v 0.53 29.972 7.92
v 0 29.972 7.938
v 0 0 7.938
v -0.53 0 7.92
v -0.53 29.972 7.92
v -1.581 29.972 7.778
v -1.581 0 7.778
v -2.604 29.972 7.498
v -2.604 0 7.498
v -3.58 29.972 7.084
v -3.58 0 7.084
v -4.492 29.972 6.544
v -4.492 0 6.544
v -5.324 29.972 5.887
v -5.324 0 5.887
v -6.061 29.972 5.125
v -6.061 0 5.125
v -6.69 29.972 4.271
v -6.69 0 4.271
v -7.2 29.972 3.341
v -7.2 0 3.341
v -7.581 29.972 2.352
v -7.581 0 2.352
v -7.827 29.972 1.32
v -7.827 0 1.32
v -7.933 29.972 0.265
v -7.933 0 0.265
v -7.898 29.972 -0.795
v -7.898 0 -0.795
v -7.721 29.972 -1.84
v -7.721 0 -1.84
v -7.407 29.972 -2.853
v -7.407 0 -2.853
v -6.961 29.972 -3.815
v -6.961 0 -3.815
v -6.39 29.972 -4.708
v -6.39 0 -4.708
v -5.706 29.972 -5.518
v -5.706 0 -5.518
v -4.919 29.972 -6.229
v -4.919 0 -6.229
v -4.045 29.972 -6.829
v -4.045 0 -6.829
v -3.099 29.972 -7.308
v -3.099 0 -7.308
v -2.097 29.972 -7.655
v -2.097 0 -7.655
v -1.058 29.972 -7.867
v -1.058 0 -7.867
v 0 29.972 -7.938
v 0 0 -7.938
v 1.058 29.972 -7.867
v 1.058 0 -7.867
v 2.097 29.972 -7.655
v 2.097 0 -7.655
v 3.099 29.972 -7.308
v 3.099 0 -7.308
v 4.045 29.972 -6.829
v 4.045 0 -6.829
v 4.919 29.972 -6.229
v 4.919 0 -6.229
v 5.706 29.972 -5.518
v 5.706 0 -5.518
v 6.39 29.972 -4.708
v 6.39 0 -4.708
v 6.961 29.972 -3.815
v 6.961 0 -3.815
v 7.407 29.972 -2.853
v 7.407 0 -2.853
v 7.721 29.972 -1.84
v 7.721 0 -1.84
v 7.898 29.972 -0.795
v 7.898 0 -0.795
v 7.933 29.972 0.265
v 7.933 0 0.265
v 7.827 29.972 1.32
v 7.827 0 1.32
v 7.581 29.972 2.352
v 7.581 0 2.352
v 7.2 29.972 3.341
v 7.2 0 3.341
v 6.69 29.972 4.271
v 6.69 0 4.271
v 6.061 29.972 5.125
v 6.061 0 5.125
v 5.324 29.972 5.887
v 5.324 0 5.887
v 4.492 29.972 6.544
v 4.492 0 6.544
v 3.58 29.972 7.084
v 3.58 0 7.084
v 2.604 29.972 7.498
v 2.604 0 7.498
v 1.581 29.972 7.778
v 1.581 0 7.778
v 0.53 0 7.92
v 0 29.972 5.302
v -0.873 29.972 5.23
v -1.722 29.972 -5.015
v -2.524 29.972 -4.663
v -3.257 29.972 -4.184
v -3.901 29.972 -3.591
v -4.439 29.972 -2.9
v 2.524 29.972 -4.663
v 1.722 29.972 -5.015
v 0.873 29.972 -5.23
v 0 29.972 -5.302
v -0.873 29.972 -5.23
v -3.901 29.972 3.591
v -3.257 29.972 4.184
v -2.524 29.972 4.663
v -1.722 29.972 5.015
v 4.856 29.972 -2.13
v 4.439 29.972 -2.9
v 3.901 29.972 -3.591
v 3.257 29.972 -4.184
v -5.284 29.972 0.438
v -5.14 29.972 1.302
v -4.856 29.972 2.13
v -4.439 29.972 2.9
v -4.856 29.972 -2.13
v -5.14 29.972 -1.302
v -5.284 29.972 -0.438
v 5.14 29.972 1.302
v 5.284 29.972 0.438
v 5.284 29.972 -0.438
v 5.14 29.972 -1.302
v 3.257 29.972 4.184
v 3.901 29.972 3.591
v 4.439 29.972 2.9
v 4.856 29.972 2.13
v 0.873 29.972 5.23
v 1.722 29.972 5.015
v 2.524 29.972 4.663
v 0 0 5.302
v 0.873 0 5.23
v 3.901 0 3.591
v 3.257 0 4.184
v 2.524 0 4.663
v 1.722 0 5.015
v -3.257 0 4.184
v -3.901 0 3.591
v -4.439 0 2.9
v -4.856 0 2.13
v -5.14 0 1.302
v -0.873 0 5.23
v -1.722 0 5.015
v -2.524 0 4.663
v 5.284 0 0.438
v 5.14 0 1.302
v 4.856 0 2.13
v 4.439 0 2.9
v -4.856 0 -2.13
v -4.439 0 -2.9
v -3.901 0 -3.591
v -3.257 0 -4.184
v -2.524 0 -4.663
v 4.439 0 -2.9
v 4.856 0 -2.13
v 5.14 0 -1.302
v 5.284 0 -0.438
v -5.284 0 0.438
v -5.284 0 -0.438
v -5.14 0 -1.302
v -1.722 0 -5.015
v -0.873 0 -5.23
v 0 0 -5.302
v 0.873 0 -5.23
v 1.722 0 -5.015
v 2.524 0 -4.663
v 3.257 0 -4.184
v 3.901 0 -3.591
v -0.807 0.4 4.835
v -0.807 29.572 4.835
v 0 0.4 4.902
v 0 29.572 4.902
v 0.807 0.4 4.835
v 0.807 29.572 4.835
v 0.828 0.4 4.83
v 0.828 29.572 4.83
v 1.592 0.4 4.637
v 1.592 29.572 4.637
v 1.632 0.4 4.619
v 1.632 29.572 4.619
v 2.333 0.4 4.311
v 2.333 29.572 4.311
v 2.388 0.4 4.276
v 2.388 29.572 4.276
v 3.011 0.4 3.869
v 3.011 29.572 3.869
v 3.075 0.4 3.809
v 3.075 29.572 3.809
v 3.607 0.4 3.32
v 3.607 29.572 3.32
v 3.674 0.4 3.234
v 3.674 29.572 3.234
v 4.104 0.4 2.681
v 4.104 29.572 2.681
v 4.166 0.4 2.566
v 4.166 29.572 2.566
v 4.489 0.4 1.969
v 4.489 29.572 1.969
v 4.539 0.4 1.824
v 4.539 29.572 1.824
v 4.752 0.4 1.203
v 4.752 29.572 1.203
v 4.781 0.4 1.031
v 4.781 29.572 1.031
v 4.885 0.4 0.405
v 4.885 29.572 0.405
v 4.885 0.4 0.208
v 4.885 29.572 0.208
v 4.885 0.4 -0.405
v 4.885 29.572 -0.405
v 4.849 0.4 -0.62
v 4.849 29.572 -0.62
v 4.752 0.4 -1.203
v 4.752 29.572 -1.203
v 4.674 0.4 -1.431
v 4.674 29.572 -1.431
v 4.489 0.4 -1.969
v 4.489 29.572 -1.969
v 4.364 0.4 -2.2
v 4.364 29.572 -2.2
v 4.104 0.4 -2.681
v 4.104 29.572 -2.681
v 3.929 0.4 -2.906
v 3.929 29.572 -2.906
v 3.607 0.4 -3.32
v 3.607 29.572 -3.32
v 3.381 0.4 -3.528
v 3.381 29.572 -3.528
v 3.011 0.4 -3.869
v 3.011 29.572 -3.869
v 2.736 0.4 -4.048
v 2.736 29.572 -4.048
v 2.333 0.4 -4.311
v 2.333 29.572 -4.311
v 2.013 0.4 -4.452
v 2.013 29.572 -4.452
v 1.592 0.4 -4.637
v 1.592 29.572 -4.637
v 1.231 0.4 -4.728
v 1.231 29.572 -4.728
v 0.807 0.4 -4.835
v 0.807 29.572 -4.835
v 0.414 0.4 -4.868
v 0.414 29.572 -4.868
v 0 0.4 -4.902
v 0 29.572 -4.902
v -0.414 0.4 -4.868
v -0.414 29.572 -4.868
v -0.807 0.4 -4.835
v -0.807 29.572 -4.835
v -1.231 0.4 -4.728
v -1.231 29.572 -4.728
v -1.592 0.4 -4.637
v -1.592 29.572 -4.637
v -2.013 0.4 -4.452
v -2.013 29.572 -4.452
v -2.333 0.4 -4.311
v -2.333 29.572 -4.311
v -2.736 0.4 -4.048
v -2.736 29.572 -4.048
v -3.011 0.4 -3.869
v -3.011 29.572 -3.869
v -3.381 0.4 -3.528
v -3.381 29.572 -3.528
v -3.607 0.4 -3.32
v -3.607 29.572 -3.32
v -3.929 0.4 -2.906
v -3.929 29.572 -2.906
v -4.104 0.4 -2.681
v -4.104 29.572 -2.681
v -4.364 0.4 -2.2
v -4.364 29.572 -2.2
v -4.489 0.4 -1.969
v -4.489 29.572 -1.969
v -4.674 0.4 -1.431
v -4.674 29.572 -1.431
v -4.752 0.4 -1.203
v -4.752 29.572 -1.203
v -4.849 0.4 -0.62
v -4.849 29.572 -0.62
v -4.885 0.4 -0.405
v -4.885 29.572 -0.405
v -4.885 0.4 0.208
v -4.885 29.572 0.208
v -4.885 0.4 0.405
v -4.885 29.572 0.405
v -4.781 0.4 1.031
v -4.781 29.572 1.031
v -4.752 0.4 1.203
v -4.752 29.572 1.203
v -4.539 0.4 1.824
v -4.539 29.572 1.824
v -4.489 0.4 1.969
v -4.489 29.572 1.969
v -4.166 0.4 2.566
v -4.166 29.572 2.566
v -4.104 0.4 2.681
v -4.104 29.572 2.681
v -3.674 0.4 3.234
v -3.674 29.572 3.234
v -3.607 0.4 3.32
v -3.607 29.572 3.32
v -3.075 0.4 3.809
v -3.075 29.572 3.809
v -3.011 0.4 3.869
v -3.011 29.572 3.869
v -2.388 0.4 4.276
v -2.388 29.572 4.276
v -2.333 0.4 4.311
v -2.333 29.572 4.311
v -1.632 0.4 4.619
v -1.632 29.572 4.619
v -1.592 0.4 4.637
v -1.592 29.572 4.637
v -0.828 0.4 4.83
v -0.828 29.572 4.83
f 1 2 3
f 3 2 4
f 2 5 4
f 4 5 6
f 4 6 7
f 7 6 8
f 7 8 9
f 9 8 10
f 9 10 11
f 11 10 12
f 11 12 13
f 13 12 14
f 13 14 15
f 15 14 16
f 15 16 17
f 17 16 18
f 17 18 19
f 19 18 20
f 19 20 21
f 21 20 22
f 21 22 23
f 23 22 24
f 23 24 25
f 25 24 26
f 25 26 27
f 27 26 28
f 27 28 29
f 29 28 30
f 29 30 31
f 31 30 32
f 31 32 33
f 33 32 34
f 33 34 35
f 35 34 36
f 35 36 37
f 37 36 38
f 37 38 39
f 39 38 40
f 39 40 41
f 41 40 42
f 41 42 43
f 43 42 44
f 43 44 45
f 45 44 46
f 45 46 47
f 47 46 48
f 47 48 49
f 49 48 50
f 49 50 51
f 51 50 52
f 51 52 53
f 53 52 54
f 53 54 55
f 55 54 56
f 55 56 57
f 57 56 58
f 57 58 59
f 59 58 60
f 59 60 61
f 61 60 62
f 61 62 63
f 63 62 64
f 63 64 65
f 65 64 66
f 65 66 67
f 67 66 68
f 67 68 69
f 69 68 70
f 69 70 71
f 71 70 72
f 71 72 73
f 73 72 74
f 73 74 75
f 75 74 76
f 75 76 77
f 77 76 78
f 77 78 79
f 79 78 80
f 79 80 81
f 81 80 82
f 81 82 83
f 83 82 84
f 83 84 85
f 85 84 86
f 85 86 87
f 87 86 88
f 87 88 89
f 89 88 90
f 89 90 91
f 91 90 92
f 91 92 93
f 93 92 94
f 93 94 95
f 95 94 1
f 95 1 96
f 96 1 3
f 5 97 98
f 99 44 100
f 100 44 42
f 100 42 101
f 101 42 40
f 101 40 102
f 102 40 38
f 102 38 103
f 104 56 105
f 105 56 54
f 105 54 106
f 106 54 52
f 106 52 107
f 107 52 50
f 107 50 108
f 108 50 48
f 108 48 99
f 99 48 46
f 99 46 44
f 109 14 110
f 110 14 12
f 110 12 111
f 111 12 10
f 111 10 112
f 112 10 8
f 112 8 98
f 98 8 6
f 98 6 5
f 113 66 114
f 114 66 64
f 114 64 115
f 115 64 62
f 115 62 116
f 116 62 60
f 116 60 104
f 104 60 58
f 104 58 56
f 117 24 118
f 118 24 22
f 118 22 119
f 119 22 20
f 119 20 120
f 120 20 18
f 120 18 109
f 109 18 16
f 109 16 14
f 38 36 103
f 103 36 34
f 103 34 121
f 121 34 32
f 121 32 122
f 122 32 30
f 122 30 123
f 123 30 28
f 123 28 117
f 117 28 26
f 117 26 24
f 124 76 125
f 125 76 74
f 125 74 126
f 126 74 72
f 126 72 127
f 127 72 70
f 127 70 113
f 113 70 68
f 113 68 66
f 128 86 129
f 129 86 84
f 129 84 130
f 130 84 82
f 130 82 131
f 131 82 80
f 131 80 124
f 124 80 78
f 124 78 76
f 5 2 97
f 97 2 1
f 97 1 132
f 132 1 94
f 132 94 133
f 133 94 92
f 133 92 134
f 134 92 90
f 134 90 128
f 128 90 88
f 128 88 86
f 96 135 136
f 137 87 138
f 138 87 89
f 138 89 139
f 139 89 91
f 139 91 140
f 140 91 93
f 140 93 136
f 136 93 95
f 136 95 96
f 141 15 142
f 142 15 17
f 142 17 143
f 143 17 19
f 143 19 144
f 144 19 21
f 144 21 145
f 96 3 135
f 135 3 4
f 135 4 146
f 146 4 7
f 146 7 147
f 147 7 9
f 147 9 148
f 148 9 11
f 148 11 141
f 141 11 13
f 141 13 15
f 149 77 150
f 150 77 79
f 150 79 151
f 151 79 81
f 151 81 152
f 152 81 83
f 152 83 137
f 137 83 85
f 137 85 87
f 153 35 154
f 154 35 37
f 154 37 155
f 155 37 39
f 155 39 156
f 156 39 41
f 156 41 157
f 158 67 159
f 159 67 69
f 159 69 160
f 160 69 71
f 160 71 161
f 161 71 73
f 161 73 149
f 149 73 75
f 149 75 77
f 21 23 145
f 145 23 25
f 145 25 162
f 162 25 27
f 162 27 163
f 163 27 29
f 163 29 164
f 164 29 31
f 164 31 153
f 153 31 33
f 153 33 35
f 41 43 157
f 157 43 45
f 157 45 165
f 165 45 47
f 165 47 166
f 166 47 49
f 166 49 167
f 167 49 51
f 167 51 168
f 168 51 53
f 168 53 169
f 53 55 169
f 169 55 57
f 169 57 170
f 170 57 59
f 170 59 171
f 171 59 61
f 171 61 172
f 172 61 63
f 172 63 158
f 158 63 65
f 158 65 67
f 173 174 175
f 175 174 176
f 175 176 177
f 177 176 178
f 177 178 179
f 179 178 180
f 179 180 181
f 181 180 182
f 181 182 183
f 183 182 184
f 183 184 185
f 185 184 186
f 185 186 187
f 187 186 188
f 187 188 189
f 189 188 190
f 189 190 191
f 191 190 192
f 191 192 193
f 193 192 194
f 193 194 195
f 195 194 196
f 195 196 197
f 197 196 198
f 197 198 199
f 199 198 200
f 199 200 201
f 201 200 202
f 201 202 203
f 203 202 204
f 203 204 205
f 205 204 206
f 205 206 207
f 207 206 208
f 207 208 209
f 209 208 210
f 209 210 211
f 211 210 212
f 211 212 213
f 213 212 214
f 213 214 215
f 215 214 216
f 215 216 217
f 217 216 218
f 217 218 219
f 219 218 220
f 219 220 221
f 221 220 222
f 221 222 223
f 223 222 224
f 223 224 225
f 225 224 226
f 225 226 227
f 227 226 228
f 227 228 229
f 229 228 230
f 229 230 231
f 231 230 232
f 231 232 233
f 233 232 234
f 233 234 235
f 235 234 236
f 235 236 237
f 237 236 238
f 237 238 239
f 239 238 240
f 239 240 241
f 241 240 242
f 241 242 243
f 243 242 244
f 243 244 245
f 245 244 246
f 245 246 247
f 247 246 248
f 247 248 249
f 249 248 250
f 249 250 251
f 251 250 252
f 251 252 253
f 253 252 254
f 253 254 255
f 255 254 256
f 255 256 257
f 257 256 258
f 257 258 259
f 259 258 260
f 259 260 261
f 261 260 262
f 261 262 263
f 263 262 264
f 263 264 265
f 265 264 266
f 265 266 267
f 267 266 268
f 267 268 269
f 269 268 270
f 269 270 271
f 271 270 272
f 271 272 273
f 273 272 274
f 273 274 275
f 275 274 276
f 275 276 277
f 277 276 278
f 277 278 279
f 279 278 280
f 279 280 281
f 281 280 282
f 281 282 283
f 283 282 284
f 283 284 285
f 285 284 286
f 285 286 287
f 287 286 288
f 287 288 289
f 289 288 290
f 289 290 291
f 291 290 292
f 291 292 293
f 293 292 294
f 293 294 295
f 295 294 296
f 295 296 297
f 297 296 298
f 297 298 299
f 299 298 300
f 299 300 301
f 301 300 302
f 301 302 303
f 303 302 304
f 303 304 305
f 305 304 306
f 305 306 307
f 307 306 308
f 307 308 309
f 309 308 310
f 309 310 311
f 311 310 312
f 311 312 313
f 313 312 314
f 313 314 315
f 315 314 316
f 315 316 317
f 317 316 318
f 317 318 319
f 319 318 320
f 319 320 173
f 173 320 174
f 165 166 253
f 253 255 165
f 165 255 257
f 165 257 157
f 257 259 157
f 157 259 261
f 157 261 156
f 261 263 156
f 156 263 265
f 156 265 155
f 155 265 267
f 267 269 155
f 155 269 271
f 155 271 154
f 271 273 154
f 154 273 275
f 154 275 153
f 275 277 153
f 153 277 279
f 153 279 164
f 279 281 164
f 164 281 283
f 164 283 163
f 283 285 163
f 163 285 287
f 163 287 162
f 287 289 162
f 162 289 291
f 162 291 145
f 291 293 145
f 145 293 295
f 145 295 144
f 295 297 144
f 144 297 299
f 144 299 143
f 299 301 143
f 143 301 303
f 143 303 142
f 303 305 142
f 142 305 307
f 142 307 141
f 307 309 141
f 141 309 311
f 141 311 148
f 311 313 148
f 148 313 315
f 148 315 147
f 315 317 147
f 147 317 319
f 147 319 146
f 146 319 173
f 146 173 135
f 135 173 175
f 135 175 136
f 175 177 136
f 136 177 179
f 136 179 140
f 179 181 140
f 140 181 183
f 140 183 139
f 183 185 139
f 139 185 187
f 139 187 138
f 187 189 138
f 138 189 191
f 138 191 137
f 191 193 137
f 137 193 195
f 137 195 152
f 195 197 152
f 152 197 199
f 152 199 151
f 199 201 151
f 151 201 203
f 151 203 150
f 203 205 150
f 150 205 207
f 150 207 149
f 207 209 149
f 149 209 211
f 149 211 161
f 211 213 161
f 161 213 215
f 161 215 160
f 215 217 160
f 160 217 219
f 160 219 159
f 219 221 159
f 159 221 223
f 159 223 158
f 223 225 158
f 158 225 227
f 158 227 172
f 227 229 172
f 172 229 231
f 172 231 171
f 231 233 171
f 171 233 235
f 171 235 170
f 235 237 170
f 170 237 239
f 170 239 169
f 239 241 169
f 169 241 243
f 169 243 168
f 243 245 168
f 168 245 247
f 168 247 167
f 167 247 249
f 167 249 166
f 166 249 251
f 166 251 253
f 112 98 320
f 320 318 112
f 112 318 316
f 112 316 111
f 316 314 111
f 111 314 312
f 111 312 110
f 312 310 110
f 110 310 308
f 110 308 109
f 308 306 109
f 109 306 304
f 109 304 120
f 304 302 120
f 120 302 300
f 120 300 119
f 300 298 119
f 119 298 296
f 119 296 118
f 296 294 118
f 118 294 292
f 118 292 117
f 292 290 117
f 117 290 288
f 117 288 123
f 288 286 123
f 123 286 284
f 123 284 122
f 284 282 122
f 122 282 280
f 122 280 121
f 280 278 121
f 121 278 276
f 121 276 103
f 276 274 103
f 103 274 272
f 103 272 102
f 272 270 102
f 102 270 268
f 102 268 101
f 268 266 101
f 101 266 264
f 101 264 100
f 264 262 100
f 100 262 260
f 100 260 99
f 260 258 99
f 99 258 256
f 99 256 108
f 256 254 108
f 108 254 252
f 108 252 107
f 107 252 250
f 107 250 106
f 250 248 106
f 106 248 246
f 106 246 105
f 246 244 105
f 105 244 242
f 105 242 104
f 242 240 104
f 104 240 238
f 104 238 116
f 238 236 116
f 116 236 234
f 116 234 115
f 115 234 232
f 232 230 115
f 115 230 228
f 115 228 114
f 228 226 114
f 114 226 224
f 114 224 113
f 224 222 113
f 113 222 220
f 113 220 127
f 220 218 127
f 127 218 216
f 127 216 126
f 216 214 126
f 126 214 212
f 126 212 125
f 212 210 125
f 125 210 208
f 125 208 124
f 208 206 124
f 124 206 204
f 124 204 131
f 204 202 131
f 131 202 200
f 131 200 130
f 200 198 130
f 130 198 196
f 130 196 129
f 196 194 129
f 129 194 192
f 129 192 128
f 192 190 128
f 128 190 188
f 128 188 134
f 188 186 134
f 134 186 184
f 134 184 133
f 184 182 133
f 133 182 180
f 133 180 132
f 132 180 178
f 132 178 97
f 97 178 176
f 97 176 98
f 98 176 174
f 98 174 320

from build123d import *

# Parameters (mm, degrees)
SKETCH1_R                = 7.9375
BOSS_EXTRUDE1_DEPTH      = 29.972
W_0_386_DIAMETER_HOLE1_D = 9.8044
CHAMFER1_SIZE            = 0.4


with BuildPart() as part:
    # Sketch1 → Boss-Extrude1 (new body)
    with BuildSketch(Plane(origin=(0, 0, 0), x_dir=(1, 0, 0), z_dir=(0, 1, 0))):
        with Locations(Location((0, 0, 0), (0, 0, 90))):
            Circle(SKETCH1_R)
    extrude(amount=BOSS_EXTRUDE1_DEPTH)

    # W (0.386) Diameter Hole1 (through all)
    with Locations(Plane(origin=(0, 29.972, 0), x_dir=(1, 0, 0), z_dir=(0, 1, 0))):
        with Locations((0, 0)):
            Hole(W_0_386_DIAMETER_HOLE1_D / 2)

    # Chamfer1
    chamfer1_edges = [part.edges().sort_by_distance(p)[0] for p in [
        (4.9022, 29.972, 0),
        (4.9022, 0, 0),
    ]]
    chamfer(chamfer1_edges, length=CHAMFER1_SIZE)


solid = part.part
